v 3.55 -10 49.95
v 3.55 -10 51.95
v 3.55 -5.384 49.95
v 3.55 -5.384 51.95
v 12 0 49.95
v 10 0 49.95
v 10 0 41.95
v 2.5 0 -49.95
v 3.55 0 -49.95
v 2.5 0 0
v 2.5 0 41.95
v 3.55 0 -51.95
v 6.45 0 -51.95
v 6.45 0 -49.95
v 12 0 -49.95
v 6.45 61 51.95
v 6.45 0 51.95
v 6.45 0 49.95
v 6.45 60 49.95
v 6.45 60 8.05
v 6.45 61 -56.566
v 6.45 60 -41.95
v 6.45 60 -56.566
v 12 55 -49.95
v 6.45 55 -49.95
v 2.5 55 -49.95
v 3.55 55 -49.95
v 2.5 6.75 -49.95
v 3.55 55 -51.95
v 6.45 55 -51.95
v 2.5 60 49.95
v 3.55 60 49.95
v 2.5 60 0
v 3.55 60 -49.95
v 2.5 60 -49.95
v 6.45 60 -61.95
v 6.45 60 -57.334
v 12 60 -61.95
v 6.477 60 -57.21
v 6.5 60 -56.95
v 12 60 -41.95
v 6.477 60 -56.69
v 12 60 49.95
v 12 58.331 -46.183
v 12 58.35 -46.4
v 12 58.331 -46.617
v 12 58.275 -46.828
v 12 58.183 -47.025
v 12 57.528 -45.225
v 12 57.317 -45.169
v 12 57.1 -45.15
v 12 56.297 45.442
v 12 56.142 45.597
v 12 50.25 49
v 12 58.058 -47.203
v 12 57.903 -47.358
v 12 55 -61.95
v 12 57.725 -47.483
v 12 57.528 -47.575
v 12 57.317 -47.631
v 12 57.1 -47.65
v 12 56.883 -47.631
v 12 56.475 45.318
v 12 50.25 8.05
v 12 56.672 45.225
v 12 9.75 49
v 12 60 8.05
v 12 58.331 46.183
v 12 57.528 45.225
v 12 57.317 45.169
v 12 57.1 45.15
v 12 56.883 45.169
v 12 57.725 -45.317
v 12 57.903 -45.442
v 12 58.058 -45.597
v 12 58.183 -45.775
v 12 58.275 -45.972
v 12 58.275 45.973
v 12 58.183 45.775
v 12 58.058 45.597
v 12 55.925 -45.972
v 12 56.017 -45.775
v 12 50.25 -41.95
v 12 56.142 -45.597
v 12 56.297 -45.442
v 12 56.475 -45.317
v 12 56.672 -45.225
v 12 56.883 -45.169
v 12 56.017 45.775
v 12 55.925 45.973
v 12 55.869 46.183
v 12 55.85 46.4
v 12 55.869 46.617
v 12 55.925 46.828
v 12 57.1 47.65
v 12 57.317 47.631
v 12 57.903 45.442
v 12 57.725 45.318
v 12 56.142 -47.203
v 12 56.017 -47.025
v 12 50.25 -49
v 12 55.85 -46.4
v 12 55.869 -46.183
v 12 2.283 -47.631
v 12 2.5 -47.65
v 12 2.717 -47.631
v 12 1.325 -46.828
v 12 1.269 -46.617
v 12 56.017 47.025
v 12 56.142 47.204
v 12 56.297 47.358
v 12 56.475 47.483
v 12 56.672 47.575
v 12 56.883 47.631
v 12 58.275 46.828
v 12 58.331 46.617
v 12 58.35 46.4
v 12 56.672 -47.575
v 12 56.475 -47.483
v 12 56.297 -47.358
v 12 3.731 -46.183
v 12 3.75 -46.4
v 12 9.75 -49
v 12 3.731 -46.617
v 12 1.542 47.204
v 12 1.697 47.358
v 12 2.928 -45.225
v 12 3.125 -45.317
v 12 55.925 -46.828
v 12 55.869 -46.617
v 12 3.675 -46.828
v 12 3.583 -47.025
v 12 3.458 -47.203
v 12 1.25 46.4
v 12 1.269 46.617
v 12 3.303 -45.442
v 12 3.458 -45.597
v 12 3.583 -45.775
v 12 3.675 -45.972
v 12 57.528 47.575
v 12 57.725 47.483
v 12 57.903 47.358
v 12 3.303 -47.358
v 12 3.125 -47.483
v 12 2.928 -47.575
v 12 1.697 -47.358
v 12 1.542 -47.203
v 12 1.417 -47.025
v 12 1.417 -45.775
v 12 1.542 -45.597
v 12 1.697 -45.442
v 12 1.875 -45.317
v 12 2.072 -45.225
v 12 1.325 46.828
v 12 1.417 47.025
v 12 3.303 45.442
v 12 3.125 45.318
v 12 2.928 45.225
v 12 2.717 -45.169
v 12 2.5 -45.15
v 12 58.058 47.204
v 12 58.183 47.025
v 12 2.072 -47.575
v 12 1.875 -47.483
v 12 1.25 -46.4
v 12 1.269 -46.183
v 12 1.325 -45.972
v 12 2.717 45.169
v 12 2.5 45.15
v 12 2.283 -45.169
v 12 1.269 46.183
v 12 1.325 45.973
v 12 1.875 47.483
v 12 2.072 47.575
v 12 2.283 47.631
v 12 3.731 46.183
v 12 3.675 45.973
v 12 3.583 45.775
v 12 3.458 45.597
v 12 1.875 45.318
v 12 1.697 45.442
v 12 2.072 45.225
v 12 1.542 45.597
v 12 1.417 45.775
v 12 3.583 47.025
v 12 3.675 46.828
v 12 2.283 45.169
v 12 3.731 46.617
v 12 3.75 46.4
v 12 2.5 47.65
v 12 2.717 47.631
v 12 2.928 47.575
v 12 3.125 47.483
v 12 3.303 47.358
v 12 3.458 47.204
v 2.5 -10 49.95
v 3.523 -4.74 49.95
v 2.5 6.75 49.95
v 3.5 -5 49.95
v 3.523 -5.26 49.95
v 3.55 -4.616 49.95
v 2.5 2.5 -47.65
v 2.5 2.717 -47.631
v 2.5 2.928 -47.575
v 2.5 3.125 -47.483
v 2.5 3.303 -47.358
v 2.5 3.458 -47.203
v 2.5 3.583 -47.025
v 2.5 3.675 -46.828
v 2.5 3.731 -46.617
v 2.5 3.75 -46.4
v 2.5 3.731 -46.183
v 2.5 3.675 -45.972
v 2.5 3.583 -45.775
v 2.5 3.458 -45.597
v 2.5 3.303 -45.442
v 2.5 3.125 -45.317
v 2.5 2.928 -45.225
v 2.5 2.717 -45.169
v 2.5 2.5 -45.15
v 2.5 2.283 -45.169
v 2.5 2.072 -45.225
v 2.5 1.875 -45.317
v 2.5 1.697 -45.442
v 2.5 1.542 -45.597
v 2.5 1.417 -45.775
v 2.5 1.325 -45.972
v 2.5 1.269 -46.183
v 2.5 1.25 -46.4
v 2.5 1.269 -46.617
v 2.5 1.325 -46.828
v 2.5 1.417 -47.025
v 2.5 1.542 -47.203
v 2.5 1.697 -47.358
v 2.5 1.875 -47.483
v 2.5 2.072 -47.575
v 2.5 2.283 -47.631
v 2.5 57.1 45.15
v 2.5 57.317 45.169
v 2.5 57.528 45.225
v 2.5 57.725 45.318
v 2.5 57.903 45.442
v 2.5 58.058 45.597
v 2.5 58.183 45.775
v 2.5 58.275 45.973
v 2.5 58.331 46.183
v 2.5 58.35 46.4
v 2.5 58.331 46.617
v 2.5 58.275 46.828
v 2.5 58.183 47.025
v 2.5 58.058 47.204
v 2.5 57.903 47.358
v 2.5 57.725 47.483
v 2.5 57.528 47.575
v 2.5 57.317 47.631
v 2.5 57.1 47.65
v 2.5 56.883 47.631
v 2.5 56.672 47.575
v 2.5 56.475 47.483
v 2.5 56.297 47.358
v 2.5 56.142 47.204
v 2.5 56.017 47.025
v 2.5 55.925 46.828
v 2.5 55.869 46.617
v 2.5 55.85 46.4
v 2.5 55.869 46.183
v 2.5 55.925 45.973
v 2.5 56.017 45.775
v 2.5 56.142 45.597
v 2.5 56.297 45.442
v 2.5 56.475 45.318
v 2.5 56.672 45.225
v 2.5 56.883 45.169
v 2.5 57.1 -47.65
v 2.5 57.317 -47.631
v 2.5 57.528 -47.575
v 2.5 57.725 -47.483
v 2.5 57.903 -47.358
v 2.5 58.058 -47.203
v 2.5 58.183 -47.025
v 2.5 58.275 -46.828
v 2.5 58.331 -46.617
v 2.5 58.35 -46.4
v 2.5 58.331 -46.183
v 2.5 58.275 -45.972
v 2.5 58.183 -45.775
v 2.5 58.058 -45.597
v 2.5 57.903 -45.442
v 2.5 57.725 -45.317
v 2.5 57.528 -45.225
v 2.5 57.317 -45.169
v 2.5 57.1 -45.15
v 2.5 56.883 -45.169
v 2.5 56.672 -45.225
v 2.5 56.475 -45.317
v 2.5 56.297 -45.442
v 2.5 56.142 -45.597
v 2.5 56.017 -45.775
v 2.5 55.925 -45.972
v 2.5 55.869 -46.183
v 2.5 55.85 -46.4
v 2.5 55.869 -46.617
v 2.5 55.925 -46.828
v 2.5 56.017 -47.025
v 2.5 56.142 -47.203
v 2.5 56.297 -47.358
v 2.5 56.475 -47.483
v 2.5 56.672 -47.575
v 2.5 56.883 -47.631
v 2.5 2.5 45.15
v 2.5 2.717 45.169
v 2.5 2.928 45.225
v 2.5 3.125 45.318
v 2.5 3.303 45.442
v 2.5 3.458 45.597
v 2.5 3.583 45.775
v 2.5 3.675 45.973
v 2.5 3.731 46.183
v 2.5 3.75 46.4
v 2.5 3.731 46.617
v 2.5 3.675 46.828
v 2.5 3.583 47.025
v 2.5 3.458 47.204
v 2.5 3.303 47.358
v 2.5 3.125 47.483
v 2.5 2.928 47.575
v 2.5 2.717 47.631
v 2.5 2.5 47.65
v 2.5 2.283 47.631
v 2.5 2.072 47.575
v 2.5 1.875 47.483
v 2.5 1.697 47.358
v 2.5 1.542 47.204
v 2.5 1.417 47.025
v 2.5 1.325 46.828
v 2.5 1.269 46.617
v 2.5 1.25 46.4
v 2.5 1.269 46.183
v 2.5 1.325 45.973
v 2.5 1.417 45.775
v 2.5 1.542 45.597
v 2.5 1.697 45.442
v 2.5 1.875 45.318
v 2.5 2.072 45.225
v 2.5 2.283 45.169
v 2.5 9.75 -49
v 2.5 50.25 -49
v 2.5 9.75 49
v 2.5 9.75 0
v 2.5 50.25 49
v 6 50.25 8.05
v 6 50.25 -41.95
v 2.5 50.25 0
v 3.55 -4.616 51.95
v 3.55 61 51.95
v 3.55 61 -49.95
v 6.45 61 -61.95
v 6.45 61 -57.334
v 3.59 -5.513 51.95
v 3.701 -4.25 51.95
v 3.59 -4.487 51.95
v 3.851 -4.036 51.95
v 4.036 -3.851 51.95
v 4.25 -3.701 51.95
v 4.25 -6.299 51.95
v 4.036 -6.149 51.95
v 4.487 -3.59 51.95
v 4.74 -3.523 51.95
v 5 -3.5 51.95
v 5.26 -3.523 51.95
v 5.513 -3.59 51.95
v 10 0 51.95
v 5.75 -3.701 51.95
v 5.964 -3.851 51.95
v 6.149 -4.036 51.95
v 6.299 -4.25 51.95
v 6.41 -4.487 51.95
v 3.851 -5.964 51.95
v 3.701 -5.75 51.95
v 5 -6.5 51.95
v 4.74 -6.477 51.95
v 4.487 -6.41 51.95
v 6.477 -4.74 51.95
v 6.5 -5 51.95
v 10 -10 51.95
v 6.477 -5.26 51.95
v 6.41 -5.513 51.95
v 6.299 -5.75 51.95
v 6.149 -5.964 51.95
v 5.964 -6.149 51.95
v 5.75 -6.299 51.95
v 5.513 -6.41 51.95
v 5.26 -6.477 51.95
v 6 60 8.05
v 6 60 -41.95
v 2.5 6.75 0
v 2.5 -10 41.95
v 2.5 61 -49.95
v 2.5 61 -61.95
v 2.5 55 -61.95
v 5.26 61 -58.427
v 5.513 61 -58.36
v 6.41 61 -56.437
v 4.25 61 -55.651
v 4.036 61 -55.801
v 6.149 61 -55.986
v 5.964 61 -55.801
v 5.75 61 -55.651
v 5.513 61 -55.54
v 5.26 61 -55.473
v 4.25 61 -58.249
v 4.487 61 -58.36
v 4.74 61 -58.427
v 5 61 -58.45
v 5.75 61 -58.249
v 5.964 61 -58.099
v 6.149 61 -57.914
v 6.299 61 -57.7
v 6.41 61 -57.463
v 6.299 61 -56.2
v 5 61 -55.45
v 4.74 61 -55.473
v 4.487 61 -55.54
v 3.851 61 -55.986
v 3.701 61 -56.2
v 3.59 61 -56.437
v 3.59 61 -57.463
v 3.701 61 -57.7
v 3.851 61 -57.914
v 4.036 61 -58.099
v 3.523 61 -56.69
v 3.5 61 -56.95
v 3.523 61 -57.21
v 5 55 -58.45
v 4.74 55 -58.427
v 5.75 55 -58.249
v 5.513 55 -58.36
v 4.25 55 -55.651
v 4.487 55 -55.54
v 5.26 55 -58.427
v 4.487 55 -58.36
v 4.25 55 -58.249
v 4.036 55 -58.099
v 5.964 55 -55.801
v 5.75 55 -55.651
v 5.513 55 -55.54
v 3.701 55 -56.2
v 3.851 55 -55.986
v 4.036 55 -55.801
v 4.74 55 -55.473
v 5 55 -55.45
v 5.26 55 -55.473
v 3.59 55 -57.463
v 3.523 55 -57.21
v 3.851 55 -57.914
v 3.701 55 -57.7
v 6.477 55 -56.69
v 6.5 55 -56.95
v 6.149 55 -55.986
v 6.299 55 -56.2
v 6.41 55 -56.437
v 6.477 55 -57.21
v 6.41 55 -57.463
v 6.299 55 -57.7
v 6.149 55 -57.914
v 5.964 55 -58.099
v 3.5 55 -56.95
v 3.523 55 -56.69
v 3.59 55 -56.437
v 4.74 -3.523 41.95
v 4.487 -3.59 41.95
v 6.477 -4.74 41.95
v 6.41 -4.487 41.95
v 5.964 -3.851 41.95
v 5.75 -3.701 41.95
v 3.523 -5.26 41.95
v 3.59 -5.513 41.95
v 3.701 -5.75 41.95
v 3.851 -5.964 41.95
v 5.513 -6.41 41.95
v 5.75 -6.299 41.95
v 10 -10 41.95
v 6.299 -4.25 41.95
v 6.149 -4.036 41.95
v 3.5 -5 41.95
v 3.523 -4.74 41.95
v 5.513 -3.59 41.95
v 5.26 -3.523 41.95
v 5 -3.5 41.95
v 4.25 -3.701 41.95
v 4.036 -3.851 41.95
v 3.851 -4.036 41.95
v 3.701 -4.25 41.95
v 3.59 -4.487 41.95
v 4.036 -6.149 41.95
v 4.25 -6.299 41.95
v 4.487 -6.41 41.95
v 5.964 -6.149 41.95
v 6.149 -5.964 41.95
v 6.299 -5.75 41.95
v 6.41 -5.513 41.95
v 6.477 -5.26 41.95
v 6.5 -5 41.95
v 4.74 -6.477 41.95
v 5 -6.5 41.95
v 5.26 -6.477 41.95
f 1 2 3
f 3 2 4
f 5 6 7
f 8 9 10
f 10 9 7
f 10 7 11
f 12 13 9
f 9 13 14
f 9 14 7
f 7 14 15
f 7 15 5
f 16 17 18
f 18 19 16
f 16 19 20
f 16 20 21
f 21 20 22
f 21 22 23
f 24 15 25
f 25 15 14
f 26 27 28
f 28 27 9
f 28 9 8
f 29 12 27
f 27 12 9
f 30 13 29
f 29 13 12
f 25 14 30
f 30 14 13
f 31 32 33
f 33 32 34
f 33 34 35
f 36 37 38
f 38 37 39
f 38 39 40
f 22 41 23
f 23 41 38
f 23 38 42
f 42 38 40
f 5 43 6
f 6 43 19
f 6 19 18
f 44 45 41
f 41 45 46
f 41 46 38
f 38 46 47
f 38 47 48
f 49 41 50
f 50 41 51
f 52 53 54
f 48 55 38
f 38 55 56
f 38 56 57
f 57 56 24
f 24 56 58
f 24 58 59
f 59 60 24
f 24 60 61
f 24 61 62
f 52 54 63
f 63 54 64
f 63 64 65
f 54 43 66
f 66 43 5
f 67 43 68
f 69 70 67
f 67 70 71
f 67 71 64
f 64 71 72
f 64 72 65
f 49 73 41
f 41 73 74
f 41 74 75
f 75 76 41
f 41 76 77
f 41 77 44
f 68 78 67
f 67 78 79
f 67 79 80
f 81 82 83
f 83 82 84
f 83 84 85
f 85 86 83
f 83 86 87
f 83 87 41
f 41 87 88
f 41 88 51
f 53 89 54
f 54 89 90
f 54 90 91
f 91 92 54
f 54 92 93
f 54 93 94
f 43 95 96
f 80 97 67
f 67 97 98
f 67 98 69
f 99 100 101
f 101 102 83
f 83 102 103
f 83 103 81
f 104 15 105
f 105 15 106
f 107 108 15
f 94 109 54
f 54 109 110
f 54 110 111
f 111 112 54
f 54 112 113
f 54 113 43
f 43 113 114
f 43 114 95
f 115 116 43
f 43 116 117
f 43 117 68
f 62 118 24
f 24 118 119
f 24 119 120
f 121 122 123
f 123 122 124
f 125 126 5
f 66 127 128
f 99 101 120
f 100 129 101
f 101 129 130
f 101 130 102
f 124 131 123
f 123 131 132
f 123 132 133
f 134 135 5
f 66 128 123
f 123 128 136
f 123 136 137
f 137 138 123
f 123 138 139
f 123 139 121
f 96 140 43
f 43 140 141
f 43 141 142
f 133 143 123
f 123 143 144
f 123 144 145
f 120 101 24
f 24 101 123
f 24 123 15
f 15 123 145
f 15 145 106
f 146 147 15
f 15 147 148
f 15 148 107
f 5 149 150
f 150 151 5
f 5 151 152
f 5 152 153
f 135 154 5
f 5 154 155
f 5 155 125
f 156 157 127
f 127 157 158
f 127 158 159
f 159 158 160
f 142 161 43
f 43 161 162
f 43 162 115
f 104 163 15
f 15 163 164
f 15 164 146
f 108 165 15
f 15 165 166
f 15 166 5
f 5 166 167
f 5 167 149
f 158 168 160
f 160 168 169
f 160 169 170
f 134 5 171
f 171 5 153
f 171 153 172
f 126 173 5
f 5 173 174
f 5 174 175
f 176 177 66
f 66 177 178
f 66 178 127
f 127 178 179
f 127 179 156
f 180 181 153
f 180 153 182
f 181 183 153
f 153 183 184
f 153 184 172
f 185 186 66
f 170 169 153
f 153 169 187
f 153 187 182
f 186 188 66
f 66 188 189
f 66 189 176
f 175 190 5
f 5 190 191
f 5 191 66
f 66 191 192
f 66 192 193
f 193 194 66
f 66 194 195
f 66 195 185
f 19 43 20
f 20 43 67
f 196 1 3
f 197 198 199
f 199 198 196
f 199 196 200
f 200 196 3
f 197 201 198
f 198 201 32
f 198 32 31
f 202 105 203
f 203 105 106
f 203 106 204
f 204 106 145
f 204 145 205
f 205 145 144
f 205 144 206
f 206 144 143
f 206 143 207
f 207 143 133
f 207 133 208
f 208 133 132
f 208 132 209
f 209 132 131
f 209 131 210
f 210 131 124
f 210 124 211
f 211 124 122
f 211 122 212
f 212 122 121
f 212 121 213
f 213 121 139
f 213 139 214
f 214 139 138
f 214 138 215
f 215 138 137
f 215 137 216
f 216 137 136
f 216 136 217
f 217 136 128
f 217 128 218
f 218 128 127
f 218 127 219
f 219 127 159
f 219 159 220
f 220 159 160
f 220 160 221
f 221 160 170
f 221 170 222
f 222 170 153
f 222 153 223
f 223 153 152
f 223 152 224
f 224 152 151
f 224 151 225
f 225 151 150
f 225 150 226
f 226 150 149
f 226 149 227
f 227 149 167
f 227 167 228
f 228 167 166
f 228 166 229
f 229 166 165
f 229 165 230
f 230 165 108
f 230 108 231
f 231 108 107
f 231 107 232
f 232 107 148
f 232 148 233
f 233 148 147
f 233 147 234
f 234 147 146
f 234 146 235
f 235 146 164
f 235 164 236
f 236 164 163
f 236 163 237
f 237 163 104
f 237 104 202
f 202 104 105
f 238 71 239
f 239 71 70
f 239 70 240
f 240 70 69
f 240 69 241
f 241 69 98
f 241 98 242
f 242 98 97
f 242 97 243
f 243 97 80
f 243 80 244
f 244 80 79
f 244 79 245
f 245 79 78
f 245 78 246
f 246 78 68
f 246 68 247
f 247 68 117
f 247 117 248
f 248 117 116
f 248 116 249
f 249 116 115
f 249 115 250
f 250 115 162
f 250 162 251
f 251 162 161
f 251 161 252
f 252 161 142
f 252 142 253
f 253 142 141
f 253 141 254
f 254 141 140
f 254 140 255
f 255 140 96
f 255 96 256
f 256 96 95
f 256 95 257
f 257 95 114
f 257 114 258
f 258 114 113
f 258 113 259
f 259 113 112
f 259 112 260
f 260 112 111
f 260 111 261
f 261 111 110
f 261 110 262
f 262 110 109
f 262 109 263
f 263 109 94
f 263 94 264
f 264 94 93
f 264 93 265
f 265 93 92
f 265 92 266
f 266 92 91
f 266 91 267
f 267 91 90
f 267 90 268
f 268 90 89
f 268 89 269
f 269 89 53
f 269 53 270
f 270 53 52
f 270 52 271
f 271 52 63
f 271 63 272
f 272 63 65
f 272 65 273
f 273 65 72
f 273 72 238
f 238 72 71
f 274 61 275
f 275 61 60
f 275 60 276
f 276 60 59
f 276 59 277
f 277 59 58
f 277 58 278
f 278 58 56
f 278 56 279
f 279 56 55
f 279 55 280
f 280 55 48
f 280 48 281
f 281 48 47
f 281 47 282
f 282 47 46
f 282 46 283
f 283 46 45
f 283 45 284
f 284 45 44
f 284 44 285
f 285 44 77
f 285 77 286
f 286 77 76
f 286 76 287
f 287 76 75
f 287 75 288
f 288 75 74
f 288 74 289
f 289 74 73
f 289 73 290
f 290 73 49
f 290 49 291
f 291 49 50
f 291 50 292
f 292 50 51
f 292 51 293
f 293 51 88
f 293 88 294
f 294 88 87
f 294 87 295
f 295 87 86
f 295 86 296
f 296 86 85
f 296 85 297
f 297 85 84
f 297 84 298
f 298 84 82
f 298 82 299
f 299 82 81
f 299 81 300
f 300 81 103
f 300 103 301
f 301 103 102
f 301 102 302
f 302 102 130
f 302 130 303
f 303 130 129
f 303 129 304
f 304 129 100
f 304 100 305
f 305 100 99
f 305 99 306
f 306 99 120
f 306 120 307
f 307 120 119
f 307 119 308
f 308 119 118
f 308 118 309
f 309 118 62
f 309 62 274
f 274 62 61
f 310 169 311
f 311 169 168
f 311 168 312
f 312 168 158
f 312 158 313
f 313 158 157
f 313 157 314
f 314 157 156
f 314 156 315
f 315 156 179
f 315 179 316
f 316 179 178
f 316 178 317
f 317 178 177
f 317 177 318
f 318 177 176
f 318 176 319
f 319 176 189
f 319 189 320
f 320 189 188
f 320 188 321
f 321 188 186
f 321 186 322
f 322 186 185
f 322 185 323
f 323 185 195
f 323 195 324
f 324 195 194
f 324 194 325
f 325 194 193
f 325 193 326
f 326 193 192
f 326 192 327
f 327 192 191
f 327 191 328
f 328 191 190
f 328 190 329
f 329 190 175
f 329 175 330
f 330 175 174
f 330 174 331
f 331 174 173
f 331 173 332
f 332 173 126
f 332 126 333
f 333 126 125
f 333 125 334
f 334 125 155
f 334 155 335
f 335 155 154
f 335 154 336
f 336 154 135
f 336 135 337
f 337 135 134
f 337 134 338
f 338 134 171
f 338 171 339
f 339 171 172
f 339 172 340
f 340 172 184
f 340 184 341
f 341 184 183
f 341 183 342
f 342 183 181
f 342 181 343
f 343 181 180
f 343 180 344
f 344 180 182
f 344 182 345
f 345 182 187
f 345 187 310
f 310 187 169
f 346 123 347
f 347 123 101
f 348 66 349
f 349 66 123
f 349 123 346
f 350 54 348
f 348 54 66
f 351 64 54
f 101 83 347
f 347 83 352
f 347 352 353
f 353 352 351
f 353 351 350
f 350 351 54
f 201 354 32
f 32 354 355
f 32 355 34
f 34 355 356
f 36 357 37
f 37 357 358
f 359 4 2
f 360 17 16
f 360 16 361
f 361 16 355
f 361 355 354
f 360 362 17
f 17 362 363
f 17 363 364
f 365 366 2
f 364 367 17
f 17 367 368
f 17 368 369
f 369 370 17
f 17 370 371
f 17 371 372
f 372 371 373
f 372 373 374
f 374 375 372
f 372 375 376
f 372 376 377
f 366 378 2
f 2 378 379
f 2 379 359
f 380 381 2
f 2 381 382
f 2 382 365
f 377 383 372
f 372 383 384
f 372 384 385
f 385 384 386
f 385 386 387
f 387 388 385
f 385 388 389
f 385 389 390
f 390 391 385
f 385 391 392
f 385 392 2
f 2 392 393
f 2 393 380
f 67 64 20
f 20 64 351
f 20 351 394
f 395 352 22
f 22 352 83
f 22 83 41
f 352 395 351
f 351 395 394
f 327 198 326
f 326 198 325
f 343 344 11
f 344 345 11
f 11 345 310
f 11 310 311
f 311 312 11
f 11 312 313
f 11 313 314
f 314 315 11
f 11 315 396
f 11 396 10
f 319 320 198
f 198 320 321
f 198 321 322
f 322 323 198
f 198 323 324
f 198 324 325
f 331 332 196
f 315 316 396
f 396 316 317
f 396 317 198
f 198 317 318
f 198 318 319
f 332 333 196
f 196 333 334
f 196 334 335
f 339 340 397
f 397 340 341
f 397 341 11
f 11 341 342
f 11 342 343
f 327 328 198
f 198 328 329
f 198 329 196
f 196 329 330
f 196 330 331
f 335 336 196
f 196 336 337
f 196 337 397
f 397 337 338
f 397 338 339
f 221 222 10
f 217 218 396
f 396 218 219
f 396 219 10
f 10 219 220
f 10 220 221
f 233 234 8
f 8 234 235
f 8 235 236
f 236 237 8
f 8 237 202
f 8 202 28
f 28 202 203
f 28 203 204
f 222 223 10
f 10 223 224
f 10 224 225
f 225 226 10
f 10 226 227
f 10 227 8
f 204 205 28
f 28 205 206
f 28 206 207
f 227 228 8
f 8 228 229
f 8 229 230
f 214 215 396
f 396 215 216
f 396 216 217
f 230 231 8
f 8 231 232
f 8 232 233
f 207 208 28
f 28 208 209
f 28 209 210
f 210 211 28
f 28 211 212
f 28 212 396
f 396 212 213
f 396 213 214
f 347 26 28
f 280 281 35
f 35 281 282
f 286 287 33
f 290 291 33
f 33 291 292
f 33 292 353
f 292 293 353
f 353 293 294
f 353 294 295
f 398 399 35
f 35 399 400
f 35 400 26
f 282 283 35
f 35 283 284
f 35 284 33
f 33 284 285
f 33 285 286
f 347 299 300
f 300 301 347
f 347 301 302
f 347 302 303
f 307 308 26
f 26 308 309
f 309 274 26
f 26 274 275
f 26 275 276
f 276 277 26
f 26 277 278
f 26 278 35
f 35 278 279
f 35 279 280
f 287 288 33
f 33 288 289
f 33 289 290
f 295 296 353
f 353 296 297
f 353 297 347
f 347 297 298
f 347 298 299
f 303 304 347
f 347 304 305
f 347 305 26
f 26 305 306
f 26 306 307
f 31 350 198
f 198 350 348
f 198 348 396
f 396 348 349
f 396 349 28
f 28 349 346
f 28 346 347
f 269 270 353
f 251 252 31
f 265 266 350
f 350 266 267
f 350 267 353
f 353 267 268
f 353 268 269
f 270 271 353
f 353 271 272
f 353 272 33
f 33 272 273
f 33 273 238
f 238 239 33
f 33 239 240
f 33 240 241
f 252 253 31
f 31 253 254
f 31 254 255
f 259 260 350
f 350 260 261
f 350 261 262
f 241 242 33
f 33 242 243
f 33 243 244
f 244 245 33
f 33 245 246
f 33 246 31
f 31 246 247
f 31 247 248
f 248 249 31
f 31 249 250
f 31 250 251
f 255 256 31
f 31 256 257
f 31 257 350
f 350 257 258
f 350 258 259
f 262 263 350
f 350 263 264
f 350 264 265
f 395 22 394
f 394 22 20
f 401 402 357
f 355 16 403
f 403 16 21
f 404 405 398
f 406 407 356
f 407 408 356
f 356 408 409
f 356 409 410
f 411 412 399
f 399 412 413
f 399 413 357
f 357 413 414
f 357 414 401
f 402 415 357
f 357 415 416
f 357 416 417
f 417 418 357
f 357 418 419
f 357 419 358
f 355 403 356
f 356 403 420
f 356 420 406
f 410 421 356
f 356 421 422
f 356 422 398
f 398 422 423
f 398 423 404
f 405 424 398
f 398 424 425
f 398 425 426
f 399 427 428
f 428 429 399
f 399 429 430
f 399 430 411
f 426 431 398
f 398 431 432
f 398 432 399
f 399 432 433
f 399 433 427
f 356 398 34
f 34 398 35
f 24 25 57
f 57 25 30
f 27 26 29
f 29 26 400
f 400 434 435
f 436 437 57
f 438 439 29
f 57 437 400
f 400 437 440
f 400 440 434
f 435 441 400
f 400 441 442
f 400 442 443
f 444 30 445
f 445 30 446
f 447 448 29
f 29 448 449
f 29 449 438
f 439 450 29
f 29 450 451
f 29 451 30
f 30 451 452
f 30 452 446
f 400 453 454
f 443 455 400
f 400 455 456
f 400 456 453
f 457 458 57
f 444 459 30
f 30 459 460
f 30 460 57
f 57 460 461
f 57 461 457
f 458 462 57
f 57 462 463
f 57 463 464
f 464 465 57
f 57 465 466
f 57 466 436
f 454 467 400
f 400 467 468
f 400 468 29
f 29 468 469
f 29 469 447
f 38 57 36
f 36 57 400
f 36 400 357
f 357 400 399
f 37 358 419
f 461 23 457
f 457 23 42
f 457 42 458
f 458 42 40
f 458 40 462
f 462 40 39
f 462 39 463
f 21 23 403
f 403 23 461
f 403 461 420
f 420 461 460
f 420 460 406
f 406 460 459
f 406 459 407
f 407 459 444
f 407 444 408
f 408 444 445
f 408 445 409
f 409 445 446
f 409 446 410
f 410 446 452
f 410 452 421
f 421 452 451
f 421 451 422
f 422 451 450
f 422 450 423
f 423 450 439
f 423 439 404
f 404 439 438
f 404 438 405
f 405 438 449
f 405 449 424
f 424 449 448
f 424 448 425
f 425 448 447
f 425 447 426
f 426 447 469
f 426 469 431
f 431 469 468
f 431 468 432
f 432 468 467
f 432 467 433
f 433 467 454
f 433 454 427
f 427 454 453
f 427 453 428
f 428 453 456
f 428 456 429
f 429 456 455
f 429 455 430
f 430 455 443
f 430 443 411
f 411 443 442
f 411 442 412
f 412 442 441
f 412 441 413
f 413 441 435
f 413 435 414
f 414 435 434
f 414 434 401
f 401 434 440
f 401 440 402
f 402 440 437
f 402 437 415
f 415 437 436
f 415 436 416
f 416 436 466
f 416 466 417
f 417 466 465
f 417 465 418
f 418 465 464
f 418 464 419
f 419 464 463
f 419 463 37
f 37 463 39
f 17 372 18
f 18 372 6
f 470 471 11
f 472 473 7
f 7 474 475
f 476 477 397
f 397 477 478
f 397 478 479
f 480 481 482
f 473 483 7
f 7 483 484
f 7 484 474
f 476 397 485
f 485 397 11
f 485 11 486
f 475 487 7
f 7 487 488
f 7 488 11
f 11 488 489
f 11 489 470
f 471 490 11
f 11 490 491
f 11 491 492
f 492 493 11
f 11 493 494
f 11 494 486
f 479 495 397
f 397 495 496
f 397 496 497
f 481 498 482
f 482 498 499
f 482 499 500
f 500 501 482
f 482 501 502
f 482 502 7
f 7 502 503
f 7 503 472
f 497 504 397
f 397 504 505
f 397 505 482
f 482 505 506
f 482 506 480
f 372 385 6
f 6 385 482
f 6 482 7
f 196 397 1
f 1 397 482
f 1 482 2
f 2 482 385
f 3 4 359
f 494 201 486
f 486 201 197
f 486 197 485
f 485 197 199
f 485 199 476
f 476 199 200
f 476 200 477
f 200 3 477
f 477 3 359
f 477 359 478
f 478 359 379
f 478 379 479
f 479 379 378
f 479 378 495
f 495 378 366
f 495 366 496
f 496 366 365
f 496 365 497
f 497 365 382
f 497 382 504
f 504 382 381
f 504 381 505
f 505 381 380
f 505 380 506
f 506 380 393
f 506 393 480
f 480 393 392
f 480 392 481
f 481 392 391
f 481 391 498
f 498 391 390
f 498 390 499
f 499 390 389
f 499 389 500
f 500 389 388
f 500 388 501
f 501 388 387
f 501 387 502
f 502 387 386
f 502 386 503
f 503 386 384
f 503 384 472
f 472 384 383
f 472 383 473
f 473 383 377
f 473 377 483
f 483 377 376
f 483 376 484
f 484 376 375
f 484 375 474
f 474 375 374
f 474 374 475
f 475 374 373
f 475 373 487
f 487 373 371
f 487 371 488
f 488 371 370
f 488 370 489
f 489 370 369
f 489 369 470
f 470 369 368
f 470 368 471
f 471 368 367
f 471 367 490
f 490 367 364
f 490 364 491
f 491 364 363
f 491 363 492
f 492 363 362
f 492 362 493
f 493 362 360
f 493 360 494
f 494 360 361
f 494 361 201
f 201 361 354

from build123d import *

# Parameters (mm, degrees)
ESQUISSE1_W             = 12
ESQUISSE1_H             = 60
MAIN_DEPTH              = 49.95
ESQUISSE2_R             = 1.25
HOLESFIXFORLCD_DEPTH    = 13
SKETCH1_W               = 98
SKETCH1_H               = 40.5
LCDWINDOWHOLE_DEPTH     = 13
SKETCH6_W               = 2.9
SKETCH6_H               = 2
MAKERBEAMRAIL_DEPTH     = 60
SKETCH7_W               = 50
SKETCH7_H               = 9.75
LCDPINSHOLES_DEPTH      = 6
SKETCH8_W               = 8
SKETCH8_H               = 40.5
REINFORCEMENT_DEPTH     = 2.5
REINFORCEMENT_2_DEPTH   = 2.5
SKETCH12_W              = 2.5
SKETCH12_H              = 69
WINDOWPLASTICHOLE_DEPTH = 104.9
SKETCH13_W              = 2.9
SKETCH13_H              = 1
MAKERBEAMRAILUP_DEPTH   = 103.9
BOSS_EXTRUDE2_DEPTH     = 12
SKETCH15_R              = 1.5
CUT_EXTRUDE4_DEPTH      = 7
BOSS_EXTRUDE3_DEPTH     = 10
SKETCH17_R              = 1.5
CUT_EXTRUDE5_DEPTH      = 114.9


with BuildPart() as part:
    # Esquisse1 → Main (new body, symmetric)
    with BuildSketch(Plane.XY):
        with Locations((6, 30)):
            Rectangle(ESQUISSE1_W, ESQUISSE1_H)
    extrude(amount=MAIN_DEPTH, both=True)

    # Esquisse2 → HolesFixForLCD (cut, through all)
    with BuildSketch(Plane(origin=(12, 0, 0), x_dir=(0, 0, -1), z_dir=(1, 0, 0))):
        with Locations((46.4, 2.5)):
            Circle(ESQUISSE2_R)
        with Locations((-46.4, 2.5)):
            Circle(ESQUISSE2_R)
        with Locations((46.4, 57.1)):
            Circle(ESQUISSE2_R)
        with Locations((-46.4, 57.1)):
            Circle(ESQUISSE2_R)
    extrude(amount=-HOLESFIXFORLCD_DEPTH, mode=Mode.SUBTRACT)

    # Sketch1 → LCDWindowHole (cut, through all)
    with BuildSketch(Plane(origin=(12, 0, 0), x_dir=(0, 0, -1), z_dir=(1, 0, 0))):
        with Locations((0, 30)):
            Rectangle(SKETCH1_W, SKETCH1_H)
    extrude(amount=-LCDWINDOWHOLE_DEPTH, mode=Mode.SUBTRACT)

    # Sketch6 → MakerBeamRail (add)
    with BuildSketch(Plane(origin=(0, 60, 0), x_dir=(1, 0, 0), z_dir=(0, 1, 0))):
        with Locations((5, 50.95)):
            Rectangle(SKETCH6_W, SKETCH6_H)
        with Locations((5, -50.95)):
            Rectangle(SKETCH6_W, SKETCH6_H)
    extrude(amount=-MAKERBEAMRAIL_DEPTH)

    # Sketch7 → LCDPinsHoles (cut)
    with BuildSketch(Plane(origin=(12, 0, 0), x_dir=(0, 0, -1), z_dir=(1, 0, 0))):
        with Locations((16.95, 55.125)):
            Rectangle(SKETCH7_W, SKETCH7_H)
    extrude(amount=-LCDPINSHOLES_DEPTH, mode=Mode.SUBTRACT)


with BuildPart() as body_2:
    # Sketch8 → Reinforcement (new body)
    with BuildSketch(Plane.ZY):
        with Locations((-45, 30)):
            Rectangle(SKETCH8_W, SKETCH8_H)
    extrude(amount=-REINFORCEMENT_DEPTH)


with BuildPart() as body_3:
    # Sketch8 → Reinforcement 2 (new body)
    with BuildSketch(Plane.ZY):
        with Locations((45, 30)):
            Rectangle(SKETCH8_W, SKETCH8_H)
    extrude(amount=-REINFORCEMENT_2_DEPTH)


with BuildPart() as windowplastichole_tool:
    # Sketch12 → WindowPlasticHole (new body, through all)
    with BuildSketch(Plane.XY.offset(51.95)):
        with Locations((1.25, 34.5)):
            Rectangle(SKETCH12_W, SKETCH12_H)
    extrude(amount=-WINDOWPLASTICHOLE_DEPTH)


with BuildPart() as part_1:
    add(part.part)

    # WindowPlasticHole: cut by windowplastichole_tool
    add(windowplastichole_tool.part, mode=Mode.SUBTRACT)

    # Sketch13 → MakerBeamRailUp (add)
    with BuildSketch(Plane.XY.offset(51.95)):
        with Locations((5, 60.5)):
            Rectangle(SKETCH13_W, SKETCH13_H)
    extrude(amount=-MAKERBEAMRAILUP_DEPTH)

    # Sketch14 → Boss-Extrude2 (add)
    with BuildSketch(Plane(origin=(0, 0, -49.95), x_dir=(-1, 0, 0), z_dir=(0, 0, -1))):
        Polygon((-12, 60), (-6.45, 60), (-6.45, 61), (-2.5, 61), (-2.5, 55), (-12, 55), align=None)
    extrude(amount=BOSS_EXTRUDE2_DEPTH)

    # Sketch15 → Cut-Extrude4 (cut, through all)
    with BuildSketch(Plane.XZ.offset(-55)):
        with Locations((5, -56.95)):
            Circle(SKETCH15_R)
    extrude(amount=-CUT_EXTRUDE4_DEPTH, mode=Mode.SUBTRACT)

    # Sketch16 → Boss-Extrude3 (add)
    with BuildSketch(Plane(origin=(0, 0, 0), x_dir=(-1, 0, 0), z_dir=(0, -1, 0))):
        Polygon((-2.5, -49.95), (-3.55, -49.95), (-3.55, -51.95), (-10, -51.95), (-10, -41.95), (-2.5, -41.95), align=None)
    extrude(amount=BOSS_EXTRUDE3_DEPTH)

    # Sketch17 → Cut-Extrude5 (cut, through all)
    with BuildSketch(Plane.XY.offset(51.95)):
        with Locations((5, -5)):
            Circle(SKETCH17_R)
    extrude(amount=-CUT_EXTRUDE5_DEPTH, mode=Mode.SUBTRACT)


with BuildPart() as body_2_1:
    add(body_2.part)

    # WindowPlasticHole: cut by windowplastichole_tool
    add(windowplastichole_tool.part, mode=Mode.SUBTRACT)


with BuildPart() as body_3_1:
    add(body_3.part)

    # WindowPlasticHole: cut by windowplastichole_tool
    add(windowplastichole_tool.part, mode=Mode.SUBTRACT)


solid = part_1.part
